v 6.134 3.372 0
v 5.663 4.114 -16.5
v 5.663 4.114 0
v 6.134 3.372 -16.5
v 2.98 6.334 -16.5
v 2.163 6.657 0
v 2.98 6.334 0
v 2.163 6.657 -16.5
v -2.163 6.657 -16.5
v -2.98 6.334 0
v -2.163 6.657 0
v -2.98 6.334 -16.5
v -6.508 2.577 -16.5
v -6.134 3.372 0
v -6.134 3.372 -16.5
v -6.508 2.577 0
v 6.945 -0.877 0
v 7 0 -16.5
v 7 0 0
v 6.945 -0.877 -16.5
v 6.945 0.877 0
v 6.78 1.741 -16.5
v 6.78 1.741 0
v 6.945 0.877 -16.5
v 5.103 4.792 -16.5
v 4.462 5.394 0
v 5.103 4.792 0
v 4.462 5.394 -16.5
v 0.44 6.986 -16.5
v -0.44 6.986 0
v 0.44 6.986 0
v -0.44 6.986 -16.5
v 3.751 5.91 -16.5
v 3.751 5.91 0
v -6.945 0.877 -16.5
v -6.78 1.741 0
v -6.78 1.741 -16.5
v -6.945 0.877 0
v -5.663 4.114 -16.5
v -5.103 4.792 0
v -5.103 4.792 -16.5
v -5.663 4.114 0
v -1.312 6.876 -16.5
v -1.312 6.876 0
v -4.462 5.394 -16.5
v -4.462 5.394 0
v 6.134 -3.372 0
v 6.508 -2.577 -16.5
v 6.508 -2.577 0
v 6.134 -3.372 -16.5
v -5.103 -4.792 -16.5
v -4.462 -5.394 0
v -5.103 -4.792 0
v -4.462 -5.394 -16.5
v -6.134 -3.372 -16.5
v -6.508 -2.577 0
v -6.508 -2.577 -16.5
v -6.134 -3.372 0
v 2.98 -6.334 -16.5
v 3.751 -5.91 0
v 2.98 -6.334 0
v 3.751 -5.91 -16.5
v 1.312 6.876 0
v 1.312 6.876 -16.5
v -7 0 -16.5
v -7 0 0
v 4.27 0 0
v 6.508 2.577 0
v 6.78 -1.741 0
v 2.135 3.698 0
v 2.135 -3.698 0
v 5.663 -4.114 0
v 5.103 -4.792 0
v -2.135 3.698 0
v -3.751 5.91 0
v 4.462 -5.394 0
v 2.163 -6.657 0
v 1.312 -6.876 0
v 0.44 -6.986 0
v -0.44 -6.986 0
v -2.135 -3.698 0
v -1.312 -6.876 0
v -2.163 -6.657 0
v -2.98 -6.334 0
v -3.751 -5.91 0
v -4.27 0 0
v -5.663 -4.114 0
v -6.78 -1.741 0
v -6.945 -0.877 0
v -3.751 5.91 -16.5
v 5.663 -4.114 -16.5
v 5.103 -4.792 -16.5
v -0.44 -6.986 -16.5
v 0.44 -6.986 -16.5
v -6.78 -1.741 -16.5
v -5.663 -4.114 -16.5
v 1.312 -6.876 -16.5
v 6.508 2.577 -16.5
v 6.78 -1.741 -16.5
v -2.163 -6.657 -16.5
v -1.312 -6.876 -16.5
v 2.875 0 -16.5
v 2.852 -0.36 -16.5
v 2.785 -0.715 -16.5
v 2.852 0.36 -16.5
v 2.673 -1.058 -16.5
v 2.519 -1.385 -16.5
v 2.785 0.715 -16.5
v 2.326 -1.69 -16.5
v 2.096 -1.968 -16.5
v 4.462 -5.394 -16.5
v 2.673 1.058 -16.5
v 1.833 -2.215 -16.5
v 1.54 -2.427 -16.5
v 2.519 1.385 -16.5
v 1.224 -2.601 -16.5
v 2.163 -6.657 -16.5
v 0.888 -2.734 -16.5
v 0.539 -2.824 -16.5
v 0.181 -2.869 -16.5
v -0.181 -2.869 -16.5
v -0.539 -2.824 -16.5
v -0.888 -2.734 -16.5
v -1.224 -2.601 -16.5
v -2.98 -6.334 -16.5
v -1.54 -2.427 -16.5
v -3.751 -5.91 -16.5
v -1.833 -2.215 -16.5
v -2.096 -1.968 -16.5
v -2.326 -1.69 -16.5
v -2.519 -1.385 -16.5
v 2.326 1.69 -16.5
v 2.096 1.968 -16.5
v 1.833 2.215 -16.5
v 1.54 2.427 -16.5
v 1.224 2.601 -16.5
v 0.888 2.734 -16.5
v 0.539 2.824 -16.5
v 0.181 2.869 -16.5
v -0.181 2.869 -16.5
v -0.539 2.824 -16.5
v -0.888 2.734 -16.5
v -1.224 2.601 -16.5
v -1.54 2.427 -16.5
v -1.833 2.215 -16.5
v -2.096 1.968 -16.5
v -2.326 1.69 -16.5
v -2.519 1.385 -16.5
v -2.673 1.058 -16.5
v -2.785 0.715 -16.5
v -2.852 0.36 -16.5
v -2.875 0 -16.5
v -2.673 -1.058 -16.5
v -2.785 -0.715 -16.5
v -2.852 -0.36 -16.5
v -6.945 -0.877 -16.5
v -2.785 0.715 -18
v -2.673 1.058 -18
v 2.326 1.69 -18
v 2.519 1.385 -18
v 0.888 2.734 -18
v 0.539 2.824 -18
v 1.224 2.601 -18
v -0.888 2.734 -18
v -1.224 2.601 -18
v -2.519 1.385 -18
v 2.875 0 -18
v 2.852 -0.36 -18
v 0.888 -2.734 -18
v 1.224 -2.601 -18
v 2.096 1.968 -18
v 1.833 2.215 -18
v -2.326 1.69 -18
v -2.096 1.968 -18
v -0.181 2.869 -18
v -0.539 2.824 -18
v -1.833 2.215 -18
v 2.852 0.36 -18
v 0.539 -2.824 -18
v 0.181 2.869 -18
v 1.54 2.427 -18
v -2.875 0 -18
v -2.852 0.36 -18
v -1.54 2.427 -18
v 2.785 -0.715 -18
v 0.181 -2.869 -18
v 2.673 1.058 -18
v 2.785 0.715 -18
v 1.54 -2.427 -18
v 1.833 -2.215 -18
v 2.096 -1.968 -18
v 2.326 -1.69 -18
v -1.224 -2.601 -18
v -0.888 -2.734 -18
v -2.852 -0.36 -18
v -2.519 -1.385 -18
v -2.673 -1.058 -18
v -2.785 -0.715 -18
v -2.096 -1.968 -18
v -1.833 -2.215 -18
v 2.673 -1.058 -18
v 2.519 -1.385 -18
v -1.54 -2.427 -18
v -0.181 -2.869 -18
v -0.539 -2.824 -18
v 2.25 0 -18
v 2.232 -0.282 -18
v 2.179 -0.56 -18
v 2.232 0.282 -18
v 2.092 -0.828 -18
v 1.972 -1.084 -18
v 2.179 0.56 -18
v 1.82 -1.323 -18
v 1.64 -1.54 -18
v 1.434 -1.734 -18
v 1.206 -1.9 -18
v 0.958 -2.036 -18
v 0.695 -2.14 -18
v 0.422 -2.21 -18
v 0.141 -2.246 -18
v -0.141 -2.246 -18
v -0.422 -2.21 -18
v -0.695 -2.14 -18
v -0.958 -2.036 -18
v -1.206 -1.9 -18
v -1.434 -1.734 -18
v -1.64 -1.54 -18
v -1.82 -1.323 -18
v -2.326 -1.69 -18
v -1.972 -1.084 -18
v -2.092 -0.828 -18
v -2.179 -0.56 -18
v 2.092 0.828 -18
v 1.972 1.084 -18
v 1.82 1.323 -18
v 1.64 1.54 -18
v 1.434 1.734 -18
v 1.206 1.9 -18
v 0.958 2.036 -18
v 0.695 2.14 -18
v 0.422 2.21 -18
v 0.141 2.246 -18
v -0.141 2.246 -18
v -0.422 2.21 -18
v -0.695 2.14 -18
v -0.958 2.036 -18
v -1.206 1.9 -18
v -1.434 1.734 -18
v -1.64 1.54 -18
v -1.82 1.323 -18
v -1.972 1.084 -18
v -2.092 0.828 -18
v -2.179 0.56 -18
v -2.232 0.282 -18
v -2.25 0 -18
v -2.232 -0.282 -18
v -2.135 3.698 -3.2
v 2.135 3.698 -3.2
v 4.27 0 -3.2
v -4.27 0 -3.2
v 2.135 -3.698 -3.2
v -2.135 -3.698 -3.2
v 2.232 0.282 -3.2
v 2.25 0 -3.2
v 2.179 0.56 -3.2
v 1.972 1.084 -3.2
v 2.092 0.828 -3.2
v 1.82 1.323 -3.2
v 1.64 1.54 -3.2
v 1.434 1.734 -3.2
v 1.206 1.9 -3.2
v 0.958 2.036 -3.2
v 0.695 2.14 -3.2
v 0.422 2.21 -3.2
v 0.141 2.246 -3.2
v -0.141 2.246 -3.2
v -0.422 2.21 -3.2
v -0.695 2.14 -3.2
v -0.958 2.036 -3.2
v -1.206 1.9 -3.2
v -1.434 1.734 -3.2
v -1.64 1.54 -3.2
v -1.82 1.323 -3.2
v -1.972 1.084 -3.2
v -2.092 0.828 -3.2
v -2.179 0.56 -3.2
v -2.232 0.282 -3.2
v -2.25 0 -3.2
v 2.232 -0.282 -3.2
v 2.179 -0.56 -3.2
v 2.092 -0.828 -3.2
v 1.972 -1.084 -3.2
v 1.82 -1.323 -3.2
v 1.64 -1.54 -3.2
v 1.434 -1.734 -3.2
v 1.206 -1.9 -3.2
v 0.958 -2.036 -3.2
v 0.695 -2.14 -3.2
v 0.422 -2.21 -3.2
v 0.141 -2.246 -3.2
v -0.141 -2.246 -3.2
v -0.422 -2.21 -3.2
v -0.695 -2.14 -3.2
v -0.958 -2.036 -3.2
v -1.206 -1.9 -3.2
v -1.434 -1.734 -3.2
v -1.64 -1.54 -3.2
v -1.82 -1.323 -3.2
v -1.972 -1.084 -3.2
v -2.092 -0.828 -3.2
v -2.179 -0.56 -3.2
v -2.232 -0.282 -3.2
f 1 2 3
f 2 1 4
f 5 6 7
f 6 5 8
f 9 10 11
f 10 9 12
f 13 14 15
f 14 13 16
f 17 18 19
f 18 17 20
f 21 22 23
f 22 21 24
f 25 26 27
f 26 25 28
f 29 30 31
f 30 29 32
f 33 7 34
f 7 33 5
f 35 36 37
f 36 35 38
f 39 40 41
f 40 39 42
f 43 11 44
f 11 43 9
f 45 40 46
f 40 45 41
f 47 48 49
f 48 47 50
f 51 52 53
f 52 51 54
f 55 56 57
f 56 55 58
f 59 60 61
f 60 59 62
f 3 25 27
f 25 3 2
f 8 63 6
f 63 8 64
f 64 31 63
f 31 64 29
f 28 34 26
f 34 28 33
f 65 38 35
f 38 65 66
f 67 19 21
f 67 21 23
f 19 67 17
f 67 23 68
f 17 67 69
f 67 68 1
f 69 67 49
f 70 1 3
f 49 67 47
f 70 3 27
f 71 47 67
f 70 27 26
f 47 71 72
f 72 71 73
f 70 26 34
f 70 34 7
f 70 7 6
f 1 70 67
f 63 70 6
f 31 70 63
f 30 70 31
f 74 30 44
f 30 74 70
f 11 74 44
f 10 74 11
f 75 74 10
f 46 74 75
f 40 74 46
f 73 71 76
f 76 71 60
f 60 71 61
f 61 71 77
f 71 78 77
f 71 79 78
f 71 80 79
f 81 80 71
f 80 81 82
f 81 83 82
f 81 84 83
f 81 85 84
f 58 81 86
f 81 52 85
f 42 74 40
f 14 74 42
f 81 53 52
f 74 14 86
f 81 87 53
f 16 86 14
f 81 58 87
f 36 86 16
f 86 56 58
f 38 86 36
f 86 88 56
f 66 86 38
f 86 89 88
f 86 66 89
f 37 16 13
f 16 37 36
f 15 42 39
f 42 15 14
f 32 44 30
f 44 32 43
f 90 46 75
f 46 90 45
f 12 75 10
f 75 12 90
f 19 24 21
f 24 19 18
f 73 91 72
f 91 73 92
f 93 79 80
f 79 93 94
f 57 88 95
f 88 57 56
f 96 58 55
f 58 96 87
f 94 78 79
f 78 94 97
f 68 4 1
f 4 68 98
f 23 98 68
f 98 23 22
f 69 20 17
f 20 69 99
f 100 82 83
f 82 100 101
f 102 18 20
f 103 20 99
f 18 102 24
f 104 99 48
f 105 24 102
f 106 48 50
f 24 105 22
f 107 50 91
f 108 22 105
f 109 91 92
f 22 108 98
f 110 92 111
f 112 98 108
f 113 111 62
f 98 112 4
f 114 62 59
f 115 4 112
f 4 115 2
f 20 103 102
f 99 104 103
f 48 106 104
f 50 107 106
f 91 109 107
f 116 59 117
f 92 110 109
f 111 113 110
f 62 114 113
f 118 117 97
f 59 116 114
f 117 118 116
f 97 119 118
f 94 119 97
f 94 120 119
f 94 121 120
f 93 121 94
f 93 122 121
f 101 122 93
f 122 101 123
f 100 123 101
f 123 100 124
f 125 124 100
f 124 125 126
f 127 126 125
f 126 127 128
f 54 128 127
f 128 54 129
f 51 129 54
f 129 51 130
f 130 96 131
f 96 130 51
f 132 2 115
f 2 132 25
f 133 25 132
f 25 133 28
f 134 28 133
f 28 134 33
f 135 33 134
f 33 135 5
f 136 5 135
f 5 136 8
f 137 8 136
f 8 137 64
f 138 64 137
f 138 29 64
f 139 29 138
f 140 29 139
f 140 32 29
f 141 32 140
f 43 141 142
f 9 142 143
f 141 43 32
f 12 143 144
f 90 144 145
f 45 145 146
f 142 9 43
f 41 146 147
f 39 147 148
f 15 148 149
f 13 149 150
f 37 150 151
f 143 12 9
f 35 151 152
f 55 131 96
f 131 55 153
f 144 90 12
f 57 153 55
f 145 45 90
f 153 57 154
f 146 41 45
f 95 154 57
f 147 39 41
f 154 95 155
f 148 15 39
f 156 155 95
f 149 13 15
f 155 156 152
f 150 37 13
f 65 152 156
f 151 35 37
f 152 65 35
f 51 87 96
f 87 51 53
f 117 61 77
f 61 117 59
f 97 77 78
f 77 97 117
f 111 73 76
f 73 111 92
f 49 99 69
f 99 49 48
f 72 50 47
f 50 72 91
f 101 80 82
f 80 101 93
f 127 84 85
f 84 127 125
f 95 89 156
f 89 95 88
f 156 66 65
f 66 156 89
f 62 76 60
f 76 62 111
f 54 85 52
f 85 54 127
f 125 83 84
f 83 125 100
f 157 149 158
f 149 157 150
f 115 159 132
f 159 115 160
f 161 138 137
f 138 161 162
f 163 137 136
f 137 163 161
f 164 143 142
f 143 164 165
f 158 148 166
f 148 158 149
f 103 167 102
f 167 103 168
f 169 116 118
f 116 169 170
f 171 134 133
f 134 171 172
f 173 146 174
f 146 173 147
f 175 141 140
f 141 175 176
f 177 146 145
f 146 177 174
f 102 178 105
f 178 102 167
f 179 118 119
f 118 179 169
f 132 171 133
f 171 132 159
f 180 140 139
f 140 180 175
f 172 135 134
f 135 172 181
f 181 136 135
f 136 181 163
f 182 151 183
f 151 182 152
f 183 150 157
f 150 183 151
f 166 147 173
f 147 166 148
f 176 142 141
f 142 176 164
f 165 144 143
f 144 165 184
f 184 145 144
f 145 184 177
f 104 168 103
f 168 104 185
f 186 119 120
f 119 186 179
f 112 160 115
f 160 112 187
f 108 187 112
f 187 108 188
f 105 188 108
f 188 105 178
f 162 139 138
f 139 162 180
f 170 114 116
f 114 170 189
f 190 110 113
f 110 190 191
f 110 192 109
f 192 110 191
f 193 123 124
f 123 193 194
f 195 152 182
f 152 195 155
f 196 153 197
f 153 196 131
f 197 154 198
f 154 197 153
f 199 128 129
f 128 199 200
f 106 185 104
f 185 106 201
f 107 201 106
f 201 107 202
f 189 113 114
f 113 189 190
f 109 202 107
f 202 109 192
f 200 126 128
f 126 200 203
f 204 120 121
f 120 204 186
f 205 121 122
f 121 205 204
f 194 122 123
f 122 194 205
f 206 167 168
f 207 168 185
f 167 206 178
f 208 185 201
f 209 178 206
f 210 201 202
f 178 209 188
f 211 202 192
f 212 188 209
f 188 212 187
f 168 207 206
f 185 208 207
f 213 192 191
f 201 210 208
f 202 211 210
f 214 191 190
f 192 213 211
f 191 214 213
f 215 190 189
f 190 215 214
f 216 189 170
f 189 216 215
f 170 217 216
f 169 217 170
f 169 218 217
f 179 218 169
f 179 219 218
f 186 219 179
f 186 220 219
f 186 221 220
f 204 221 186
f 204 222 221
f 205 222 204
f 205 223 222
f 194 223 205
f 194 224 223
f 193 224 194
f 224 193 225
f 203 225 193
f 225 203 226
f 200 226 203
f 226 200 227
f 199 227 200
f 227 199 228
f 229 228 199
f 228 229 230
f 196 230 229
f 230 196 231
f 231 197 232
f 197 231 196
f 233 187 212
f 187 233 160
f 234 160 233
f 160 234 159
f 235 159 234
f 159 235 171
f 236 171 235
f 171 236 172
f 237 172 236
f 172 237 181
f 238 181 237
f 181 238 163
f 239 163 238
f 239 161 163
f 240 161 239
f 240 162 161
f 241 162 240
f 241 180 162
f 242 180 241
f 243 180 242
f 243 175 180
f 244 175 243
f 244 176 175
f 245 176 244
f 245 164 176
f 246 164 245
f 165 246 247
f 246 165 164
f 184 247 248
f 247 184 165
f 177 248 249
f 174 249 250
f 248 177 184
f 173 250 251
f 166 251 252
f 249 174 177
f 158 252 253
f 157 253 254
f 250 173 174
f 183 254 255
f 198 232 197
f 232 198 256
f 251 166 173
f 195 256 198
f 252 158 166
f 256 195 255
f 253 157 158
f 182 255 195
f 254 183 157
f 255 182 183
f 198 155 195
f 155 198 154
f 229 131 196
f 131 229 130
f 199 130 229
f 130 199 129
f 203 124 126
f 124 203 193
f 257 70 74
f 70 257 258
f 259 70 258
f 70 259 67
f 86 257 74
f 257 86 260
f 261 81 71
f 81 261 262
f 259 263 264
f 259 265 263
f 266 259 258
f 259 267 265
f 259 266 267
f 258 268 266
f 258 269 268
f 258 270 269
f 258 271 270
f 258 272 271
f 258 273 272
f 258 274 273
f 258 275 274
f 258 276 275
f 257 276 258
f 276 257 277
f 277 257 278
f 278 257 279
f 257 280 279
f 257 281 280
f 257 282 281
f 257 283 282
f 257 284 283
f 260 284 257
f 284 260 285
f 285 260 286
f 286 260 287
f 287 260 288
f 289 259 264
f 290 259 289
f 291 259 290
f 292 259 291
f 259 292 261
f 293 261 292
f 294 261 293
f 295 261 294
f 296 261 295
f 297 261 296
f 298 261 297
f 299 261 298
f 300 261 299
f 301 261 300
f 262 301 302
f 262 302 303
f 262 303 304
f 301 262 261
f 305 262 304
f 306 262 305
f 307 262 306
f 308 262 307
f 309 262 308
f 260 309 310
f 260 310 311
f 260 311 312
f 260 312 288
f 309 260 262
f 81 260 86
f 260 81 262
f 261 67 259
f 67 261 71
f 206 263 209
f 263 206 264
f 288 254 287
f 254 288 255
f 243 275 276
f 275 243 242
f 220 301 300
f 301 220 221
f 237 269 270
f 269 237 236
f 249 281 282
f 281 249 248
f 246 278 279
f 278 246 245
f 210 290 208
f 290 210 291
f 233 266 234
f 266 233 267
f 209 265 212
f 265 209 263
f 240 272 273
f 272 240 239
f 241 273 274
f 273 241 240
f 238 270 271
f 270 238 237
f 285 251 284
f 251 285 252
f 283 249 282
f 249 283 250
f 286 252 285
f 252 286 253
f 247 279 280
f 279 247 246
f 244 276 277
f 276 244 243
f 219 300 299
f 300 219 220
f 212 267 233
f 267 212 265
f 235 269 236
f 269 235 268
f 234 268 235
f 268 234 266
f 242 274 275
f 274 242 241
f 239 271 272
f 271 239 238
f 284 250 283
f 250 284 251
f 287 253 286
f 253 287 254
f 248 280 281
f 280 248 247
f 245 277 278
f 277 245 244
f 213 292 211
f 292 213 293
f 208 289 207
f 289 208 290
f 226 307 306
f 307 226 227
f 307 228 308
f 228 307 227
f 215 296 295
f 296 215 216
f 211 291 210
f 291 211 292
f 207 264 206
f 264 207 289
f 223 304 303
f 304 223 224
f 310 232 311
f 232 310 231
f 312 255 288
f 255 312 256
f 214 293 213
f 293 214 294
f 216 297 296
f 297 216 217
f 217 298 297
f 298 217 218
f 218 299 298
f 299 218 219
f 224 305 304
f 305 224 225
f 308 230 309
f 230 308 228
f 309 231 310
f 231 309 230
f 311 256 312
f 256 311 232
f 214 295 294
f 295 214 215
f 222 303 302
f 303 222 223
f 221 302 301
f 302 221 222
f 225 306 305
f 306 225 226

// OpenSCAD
$fn = 50;

difference() {
	union() {
		translate(v = [0, 0, -16.5]) {
			cylinder(h = 16.5, r = 7.0);
		}
		#translate(v = [0, 0, -18.0]) {
			cylinder(h = 18, r = 2.875);
		}
	}
	union() {
		translate(v = [0, 0, 0]) {
			rotate(a = [0, 0, 0]) {
				difference() {
					union() {
						translate(v = [0, 0, -3.2]) {
							linear_extrude(height = 3.2) {
								polygon(points = [[4.2698, 0.0], [2.1349000000000005, 3.697755269078796], [-2.134899999999999, 3.6977552690787965], [-4.2698, 5.228996902999369e-16], [-2.134900000000002, -3.6977552690787956], [2.1348999999999974, -3.697755269078798]]);
							}
						}
					}
					union();
				}
			}
		}
		#translate(v = [0, 0, -100.0]) {
			cylinder(h = 200, r = 2.25);
		}
	}
}
